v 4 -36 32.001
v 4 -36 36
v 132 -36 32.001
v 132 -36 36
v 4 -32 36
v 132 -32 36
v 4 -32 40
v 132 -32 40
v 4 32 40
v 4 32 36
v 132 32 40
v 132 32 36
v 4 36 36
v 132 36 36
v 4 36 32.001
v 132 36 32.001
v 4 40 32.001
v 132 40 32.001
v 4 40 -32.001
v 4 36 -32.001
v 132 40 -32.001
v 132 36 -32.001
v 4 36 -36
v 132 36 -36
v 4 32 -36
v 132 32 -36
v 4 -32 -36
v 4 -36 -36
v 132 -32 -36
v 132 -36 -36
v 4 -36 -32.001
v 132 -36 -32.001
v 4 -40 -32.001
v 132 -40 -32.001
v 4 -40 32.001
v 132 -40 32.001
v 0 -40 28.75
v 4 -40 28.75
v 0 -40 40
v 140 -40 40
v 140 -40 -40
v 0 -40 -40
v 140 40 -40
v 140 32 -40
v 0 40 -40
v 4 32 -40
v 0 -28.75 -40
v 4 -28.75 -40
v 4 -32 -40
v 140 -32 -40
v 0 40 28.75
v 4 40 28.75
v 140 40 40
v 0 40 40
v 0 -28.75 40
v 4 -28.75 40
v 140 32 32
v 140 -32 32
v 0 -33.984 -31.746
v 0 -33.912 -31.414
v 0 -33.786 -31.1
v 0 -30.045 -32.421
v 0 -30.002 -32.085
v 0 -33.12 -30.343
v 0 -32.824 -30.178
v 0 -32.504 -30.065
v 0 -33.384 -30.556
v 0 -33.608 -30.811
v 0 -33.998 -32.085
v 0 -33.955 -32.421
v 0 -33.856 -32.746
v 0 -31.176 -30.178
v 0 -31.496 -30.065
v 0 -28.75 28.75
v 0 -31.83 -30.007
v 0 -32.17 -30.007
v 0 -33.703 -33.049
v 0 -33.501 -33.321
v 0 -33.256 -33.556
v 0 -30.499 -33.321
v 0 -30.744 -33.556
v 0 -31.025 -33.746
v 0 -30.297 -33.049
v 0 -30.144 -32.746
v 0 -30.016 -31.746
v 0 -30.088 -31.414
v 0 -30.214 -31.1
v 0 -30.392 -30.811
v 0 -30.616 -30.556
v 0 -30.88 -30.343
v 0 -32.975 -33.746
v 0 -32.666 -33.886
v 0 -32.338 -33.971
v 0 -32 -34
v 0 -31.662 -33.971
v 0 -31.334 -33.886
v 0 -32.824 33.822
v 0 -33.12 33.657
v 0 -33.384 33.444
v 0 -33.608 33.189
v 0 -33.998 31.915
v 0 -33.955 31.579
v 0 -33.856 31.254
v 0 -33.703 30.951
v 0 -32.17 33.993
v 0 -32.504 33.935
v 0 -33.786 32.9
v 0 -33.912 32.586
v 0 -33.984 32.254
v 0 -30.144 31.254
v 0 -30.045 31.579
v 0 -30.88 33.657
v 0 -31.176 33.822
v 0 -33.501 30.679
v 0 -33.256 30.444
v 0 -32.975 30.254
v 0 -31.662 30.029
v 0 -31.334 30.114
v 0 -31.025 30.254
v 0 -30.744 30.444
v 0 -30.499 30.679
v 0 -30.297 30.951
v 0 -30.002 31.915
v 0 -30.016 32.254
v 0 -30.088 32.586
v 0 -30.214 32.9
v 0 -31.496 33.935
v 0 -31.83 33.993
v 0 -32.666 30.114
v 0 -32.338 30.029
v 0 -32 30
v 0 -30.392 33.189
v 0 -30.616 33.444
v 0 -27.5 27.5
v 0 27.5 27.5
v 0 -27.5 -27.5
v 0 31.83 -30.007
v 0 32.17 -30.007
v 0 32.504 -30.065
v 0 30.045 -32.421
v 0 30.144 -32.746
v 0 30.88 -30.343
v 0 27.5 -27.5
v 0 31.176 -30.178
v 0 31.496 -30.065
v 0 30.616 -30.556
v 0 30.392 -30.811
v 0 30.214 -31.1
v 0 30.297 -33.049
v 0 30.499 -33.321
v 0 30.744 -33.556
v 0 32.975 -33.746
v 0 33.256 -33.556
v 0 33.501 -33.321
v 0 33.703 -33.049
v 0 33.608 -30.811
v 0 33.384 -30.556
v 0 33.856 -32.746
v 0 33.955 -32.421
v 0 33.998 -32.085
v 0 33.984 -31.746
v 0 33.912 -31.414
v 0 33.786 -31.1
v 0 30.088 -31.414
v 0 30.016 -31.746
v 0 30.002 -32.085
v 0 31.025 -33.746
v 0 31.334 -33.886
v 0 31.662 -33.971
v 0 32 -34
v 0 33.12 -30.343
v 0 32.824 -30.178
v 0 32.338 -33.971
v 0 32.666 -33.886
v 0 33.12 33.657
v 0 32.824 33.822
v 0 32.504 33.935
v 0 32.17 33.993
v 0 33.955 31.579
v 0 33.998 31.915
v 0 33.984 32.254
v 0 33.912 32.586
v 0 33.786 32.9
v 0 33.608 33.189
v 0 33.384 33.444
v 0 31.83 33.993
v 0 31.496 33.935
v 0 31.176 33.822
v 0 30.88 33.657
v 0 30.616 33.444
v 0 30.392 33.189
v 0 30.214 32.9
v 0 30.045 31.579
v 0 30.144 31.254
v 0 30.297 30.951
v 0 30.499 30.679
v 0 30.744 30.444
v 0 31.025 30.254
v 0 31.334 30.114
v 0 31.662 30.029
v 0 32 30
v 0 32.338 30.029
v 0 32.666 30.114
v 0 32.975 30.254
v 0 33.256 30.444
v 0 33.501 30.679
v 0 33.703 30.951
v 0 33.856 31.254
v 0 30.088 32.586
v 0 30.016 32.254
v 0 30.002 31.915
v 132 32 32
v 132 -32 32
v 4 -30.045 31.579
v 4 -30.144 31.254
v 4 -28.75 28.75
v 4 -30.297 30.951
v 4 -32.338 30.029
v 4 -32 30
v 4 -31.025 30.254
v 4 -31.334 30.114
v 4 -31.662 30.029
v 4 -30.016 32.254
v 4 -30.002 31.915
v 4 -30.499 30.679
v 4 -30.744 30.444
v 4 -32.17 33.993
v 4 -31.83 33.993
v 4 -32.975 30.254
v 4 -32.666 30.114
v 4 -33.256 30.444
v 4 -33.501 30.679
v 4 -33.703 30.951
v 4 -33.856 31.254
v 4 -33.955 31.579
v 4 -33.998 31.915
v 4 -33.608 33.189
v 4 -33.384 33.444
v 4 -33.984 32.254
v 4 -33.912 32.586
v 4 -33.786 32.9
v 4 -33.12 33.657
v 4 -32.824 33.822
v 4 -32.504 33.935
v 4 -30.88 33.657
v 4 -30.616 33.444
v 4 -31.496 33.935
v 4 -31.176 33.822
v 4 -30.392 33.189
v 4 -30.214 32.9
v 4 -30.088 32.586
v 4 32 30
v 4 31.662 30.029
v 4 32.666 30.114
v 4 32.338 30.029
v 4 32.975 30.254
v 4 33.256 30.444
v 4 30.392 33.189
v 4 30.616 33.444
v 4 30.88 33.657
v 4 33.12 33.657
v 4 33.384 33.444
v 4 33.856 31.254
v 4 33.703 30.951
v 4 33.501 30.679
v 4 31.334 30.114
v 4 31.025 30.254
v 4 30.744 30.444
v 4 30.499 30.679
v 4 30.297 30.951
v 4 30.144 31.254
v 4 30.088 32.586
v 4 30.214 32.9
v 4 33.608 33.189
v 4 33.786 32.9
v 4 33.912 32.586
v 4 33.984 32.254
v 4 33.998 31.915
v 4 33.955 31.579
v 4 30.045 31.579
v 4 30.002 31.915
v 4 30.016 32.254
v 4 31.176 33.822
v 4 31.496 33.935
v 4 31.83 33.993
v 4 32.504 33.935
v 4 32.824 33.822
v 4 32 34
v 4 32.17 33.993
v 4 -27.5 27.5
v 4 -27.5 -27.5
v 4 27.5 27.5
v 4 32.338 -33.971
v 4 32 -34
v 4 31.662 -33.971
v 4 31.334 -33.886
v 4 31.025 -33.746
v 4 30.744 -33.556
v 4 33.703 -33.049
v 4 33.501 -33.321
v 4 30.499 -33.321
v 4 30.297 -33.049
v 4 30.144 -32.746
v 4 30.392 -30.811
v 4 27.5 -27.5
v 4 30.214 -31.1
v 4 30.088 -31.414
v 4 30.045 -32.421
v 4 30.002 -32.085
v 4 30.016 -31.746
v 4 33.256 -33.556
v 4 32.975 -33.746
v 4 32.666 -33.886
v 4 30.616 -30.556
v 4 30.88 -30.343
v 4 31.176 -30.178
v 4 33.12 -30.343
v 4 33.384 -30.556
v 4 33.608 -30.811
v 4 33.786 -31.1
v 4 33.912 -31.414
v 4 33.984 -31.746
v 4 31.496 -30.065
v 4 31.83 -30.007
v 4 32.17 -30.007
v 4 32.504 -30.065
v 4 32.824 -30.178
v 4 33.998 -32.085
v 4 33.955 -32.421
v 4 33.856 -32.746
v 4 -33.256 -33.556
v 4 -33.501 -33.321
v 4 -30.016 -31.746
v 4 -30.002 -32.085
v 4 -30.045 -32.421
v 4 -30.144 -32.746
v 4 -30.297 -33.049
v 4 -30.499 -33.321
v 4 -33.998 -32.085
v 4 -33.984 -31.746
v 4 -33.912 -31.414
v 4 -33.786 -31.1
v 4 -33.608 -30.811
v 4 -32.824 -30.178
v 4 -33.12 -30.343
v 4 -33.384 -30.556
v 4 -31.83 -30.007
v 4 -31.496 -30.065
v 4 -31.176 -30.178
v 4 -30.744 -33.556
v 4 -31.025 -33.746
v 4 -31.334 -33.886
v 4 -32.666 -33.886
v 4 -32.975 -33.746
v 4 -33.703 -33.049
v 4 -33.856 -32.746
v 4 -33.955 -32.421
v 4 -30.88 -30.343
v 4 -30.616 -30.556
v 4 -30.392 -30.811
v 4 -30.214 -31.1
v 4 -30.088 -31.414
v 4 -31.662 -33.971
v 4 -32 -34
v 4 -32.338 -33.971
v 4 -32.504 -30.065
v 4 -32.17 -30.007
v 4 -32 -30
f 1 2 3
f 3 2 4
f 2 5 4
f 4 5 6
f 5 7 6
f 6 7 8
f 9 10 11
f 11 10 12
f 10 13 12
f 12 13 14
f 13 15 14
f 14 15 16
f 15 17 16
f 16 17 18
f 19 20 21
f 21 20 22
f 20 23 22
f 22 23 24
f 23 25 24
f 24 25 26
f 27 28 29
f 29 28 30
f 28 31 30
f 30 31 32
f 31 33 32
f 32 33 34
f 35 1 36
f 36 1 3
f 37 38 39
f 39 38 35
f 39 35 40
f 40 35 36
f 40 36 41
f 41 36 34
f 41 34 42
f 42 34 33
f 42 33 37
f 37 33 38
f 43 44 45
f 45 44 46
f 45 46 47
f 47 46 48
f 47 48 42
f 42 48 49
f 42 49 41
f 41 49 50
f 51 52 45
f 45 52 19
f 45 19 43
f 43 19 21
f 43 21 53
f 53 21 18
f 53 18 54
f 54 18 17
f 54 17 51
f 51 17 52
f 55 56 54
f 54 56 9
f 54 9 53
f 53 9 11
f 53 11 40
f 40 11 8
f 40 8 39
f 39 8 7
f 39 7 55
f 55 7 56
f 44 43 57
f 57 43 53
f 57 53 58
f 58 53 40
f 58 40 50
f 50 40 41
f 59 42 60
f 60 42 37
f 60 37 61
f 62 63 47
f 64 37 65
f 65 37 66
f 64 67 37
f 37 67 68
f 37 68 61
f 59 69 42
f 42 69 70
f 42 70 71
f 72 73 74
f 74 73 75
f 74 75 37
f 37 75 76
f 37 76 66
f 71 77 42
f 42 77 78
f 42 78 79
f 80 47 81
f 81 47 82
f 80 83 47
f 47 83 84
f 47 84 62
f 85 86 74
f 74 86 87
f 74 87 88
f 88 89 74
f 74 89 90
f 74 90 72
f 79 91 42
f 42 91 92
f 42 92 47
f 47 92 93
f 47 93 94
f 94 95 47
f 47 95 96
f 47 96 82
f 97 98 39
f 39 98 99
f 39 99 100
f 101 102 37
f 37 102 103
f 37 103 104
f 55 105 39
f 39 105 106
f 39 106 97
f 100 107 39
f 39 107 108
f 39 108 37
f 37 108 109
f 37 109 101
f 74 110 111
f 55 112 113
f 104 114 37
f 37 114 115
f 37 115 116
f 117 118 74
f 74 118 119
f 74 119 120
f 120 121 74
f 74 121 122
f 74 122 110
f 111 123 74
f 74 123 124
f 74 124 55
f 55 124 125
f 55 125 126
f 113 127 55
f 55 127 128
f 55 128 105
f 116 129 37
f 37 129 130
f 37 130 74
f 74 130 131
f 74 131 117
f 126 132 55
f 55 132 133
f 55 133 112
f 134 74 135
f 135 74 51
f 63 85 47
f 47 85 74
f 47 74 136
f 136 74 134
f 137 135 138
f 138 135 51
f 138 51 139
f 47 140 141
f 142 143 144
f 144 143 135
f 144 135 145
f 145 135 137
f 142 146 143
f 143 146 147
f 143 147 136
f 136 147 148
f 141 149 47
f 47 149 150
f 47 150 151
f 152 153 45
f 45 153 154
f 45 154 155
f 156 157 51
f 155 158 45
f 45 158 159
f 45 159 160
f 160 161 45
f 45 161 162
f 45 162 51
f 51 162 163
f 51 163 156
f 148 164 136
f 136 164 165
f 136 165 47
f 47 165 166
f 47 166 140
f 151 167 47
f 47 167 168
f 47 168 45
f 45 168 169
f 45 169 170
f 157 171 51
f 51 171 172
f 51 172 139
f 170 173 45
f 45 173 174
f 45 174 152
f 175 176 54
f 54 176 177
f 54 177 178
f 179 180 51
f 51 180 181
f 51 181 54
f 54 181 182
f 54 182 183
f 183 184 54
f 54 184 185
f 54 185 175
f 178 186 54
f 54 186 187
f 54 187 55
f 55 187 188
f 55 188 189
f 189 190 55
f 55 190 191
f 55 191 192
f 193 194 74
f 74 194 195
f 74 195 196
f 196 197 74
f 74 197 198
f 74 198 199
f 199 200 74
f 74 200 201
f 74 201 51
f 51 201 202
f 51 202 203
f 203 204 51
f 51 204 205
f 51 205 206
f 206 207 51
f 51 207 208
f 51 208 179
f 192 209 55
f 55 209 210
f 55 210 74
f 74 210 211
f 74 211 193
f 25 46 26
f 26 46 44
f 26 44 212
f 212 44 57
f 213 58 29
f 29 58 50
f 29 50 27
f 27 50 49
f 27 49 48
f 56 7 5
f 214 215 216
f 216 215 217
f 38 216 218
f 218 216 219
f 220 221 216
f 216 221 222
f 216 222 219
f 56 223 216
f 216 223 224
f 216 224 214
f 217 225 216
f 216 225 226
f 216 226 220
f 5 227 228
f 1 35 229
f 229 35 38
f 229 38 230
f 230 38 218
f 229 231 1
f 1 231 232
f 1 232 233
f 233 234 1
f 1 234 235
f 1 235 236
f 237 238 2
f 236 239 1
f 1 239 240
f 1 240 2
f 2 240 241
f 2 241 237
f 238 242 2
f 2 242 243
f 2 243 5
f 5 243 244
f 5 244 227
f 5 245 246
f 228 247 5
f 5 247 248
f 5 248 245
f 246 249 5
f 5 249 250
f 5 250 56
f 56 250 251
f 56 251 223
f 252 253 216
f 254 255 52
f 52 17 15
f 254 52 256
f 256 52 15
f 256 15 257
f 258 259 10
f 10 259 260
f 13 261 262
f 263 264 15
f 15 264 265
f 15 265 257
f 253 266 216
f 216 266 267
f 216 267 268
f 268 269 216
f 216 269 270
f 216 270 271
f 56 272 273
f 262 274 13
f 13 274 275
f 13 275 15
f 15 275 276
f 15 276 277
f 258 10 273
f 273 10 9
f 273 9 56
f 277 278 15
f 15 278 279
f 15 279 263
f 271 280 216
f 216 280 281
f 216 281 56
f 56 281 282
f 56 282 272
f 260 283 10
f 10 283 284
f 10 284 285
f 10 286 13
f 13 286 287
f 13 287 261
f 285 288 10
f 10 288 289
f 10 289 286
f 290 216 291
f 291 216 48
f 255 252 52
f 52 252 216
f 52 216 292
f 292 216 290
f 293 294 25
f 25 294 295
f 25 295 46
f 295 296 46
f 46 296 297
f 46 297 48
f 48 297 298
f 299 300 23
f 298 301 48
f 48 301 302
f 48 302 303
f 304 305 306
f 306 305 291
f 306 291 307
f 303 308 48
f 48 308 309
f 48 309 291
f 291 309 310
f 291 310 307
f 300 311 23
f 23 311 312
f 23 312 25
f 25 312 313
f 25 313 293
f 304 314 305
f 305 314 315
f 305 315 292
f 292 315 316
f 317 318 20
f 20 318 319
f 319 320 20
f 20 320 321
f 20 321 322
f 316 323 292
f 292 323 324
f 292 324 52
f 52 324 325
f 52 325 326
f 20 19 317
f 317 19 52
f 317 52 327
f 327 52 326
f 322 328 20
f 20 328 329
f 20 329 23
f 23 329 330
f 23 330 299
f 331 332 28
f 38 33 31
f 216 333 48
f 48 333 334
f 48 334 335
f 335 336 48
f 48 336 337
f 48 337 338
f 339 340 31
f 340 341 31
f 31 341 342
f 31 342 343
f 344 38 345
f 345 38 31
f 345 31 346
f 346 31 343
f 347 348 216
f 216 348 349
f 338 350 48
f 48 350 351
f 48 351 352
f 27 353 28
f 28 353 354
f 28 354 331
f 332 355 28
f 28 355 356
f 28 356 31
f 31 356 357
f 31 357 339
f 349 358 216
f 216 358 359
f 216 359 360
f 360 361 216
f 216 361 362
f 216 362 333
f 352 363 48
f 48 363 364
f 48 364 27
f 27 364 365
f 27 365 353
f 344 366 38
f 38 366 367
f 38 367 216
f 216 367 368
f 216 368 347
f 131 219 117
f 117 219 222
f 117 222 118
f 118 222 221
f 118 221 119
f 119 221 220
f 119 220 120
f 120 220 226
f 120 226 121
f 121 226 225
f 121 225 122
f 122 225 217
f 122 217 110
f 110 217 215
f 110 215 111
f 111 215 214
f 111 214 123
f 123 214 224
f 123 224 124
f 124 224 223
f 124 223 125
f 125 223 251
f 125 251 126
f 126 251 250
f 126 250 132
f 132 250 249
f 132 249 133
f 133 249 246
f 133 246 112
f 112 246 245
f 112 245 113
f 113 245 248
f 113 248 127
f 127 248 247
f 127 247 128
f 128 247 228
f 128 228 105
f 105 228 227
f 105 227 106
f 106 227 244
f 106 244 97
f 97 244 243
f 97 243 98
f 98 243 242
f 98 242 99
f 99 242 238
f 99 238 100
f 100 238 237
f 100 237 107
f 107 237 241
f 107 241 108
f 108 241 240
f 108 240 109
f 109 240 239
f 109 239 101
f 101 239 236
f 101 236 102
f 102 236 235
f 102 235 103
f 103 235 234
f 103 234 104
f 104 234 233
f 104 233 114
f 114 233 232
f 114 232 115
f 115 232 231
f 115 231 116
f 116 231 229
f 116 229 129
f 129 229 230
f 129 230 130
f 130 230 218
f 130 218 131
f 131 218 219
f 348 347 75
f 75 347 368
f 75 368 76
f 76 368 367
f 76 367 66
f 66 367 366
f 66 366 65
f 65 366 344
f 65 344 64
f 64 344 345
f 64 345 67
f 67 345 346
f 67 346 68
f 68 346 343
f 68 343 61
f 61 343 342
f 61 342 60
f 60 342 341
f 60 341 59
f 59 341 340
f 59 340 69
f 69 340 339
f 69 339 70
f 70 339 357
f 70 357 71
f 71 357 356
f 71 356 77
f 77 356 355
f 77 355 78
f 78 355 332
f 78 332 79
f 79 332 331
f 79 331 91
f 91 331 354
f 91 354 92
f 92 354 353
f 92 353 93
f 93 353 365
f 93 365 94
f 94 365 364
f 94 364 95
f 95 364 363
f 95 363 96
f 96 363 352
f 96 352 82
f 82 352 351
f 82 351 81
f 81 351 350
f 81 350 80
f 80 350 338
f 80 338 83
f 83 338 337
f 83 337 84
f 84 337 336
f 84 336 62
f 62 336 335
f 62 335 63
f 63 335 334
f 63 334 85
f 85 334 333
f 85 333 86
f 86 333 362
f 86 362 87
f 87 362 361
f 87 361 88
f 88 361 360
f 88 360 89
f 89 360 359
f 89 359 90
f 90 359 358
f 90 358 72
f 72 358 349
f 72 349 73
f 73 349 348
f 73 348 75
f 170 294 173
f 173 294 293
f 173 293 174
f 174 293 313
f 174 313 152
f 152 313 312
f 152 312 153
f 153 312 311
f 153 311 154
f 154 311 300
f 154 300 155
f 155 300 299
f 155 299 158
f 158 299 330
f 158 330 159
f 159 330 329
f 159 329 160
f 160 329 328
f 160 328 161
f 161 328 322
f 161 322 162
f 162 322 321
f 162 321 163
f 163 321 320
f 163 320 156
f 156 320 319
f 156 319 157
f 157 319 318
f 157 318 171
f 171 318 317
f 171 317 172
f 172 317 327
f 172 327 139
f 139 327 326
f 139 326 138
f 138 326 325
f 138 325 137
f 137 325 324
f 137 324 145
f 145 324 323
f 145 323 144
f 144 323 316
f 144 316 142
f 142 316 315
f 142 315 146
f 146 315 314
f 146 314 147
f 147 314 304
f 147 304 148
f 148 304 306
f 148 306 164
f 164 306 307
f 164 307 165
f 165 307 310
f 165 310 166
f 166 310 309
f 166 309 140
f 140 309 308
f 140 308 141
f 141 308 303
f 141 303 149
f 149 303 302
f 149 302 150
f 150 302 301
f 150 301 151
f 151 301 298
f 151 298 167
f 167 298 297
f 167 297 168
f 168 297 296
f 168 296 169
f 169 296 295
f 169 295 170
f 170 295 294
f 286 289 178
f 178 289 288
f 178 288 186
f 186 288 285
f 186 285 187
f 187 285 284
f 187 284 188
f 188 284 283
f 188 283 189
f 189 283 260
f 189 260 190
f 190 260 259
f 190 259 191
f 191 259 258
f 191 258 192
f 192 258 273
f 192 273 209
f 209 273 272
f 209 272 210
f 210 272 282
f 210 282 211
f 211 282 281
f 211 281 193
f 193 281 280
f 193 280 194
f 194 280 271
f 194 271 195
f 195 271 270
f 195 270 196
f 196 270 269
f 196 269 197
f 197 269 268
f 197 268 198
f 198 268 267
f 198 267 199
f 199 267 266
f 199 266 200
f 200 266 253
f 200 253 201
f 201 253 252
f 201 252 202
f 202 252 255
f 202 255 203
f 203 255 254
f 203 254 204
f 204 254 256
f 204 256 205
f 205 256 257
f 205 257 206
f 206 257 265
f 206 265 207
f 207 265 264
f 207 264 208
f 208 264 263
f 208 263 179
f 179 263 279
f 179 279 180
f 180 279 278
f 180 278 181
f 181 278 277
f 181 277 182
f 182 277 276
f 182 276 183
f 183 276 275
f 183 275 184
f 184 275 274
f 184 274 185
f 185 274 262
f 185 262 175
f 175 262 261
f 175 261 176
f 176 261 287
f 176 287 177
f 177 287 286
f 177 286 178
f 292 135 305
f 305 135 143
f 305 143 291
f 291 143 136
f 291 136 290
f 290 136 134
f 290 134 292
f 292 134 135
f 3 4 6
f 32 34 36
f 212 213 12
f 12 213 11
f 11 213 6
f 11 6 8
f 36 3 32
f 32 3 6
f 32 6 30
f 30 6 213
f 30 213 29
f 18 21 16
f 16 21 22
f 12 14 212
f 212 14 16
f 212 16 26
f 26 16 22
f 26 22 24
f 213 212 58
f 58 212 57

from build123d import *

# Parameters (mm, degrees)
CROQUIS1_W              = 80
CROQUIS1_H              = 80
SALIENTE_EXTRUIR1_DEPTH = 140
CORTAR_EXTRUIR3_DEPTH   = 136
CROQUIS8_R              = 2
CROQUIS8_W              = 55
CROQUIS8_H              = 55
CORTAR_EXTRUIR4_DEPTH   = 136
SALIENTE_EXTRUIR4_DEPTH = 8


with BuildPart() as part:
    # Croquis1 → Saliente-Extruir1 (new body)
    with BuildSketch(Plane.YZ):
        Rectangle(CROQUIS1_W, CROQUIS1_H)
    extrude(amount=SALIENTE_EXTRUIR1_DEPTH)

    # Croquis7 → Cortar-Extruir3 (cut)
    with BuildSketch(Plane.YZ.offset(140)):
        Polygon((-40, 32.000605379), (-36, 32.000605379), (-36, 36), (-32, 36), (-32, 40), (32, 40), (32, 36), (36, 36), (36, 32.000605379), (40, 32.000605379), (40, -32.000605379), (36, -32.000605379), (36, -36), (32, -36), (32, -40), (-32, -40), (-32, -36), (-36, -36), (-36, -32.000605379), (-40, -32.000605379), align=None)
    extrude(amount=-CORTAR_EXTRUIR3_DEPTH, mode=Mode.SUBTRACT)

    # Croquis8 → Cortar-Extruir4 (cut)
    with BuildSketch(Plane.YZ.offset(4)):
        with Locations(Location((-32, 32, 0), (0, 0, 270))):
            Circle(CROQUIS8_R)
        with Locations(Location((-32, -32, 0), (0, 0, 270))):
            Circle(CROQUIS8_R)
        with Locations(Location((32, -32, 0), (0, 0, 270))):
            Circle(CROQUIS8_R)
        with Locations(Location((32, 32, 0), (0, 0, 270))):
            Circle(CROQUIS8_R)
        Rectangle(CROQUIS8_W, CROQUIS8_H)
    extrude(amount=-CORTAR_EXTRUIR4_DEPTH, mode=Mode.SUBTRACT)

    # Croquis9 → Saliente-Extruir4 (add)
    with BuildSketch(Plane.YZ.offset(140)):
        Polygon((32, -40), (40, -40), (40, 40), (-40, 40), (-40, -40), (-32, -40), (-32, 32), (32, 32), align=None)
    extrude(amount=-SALIENTE_EXTRUIR4_DEPTH)


solid = part.part
